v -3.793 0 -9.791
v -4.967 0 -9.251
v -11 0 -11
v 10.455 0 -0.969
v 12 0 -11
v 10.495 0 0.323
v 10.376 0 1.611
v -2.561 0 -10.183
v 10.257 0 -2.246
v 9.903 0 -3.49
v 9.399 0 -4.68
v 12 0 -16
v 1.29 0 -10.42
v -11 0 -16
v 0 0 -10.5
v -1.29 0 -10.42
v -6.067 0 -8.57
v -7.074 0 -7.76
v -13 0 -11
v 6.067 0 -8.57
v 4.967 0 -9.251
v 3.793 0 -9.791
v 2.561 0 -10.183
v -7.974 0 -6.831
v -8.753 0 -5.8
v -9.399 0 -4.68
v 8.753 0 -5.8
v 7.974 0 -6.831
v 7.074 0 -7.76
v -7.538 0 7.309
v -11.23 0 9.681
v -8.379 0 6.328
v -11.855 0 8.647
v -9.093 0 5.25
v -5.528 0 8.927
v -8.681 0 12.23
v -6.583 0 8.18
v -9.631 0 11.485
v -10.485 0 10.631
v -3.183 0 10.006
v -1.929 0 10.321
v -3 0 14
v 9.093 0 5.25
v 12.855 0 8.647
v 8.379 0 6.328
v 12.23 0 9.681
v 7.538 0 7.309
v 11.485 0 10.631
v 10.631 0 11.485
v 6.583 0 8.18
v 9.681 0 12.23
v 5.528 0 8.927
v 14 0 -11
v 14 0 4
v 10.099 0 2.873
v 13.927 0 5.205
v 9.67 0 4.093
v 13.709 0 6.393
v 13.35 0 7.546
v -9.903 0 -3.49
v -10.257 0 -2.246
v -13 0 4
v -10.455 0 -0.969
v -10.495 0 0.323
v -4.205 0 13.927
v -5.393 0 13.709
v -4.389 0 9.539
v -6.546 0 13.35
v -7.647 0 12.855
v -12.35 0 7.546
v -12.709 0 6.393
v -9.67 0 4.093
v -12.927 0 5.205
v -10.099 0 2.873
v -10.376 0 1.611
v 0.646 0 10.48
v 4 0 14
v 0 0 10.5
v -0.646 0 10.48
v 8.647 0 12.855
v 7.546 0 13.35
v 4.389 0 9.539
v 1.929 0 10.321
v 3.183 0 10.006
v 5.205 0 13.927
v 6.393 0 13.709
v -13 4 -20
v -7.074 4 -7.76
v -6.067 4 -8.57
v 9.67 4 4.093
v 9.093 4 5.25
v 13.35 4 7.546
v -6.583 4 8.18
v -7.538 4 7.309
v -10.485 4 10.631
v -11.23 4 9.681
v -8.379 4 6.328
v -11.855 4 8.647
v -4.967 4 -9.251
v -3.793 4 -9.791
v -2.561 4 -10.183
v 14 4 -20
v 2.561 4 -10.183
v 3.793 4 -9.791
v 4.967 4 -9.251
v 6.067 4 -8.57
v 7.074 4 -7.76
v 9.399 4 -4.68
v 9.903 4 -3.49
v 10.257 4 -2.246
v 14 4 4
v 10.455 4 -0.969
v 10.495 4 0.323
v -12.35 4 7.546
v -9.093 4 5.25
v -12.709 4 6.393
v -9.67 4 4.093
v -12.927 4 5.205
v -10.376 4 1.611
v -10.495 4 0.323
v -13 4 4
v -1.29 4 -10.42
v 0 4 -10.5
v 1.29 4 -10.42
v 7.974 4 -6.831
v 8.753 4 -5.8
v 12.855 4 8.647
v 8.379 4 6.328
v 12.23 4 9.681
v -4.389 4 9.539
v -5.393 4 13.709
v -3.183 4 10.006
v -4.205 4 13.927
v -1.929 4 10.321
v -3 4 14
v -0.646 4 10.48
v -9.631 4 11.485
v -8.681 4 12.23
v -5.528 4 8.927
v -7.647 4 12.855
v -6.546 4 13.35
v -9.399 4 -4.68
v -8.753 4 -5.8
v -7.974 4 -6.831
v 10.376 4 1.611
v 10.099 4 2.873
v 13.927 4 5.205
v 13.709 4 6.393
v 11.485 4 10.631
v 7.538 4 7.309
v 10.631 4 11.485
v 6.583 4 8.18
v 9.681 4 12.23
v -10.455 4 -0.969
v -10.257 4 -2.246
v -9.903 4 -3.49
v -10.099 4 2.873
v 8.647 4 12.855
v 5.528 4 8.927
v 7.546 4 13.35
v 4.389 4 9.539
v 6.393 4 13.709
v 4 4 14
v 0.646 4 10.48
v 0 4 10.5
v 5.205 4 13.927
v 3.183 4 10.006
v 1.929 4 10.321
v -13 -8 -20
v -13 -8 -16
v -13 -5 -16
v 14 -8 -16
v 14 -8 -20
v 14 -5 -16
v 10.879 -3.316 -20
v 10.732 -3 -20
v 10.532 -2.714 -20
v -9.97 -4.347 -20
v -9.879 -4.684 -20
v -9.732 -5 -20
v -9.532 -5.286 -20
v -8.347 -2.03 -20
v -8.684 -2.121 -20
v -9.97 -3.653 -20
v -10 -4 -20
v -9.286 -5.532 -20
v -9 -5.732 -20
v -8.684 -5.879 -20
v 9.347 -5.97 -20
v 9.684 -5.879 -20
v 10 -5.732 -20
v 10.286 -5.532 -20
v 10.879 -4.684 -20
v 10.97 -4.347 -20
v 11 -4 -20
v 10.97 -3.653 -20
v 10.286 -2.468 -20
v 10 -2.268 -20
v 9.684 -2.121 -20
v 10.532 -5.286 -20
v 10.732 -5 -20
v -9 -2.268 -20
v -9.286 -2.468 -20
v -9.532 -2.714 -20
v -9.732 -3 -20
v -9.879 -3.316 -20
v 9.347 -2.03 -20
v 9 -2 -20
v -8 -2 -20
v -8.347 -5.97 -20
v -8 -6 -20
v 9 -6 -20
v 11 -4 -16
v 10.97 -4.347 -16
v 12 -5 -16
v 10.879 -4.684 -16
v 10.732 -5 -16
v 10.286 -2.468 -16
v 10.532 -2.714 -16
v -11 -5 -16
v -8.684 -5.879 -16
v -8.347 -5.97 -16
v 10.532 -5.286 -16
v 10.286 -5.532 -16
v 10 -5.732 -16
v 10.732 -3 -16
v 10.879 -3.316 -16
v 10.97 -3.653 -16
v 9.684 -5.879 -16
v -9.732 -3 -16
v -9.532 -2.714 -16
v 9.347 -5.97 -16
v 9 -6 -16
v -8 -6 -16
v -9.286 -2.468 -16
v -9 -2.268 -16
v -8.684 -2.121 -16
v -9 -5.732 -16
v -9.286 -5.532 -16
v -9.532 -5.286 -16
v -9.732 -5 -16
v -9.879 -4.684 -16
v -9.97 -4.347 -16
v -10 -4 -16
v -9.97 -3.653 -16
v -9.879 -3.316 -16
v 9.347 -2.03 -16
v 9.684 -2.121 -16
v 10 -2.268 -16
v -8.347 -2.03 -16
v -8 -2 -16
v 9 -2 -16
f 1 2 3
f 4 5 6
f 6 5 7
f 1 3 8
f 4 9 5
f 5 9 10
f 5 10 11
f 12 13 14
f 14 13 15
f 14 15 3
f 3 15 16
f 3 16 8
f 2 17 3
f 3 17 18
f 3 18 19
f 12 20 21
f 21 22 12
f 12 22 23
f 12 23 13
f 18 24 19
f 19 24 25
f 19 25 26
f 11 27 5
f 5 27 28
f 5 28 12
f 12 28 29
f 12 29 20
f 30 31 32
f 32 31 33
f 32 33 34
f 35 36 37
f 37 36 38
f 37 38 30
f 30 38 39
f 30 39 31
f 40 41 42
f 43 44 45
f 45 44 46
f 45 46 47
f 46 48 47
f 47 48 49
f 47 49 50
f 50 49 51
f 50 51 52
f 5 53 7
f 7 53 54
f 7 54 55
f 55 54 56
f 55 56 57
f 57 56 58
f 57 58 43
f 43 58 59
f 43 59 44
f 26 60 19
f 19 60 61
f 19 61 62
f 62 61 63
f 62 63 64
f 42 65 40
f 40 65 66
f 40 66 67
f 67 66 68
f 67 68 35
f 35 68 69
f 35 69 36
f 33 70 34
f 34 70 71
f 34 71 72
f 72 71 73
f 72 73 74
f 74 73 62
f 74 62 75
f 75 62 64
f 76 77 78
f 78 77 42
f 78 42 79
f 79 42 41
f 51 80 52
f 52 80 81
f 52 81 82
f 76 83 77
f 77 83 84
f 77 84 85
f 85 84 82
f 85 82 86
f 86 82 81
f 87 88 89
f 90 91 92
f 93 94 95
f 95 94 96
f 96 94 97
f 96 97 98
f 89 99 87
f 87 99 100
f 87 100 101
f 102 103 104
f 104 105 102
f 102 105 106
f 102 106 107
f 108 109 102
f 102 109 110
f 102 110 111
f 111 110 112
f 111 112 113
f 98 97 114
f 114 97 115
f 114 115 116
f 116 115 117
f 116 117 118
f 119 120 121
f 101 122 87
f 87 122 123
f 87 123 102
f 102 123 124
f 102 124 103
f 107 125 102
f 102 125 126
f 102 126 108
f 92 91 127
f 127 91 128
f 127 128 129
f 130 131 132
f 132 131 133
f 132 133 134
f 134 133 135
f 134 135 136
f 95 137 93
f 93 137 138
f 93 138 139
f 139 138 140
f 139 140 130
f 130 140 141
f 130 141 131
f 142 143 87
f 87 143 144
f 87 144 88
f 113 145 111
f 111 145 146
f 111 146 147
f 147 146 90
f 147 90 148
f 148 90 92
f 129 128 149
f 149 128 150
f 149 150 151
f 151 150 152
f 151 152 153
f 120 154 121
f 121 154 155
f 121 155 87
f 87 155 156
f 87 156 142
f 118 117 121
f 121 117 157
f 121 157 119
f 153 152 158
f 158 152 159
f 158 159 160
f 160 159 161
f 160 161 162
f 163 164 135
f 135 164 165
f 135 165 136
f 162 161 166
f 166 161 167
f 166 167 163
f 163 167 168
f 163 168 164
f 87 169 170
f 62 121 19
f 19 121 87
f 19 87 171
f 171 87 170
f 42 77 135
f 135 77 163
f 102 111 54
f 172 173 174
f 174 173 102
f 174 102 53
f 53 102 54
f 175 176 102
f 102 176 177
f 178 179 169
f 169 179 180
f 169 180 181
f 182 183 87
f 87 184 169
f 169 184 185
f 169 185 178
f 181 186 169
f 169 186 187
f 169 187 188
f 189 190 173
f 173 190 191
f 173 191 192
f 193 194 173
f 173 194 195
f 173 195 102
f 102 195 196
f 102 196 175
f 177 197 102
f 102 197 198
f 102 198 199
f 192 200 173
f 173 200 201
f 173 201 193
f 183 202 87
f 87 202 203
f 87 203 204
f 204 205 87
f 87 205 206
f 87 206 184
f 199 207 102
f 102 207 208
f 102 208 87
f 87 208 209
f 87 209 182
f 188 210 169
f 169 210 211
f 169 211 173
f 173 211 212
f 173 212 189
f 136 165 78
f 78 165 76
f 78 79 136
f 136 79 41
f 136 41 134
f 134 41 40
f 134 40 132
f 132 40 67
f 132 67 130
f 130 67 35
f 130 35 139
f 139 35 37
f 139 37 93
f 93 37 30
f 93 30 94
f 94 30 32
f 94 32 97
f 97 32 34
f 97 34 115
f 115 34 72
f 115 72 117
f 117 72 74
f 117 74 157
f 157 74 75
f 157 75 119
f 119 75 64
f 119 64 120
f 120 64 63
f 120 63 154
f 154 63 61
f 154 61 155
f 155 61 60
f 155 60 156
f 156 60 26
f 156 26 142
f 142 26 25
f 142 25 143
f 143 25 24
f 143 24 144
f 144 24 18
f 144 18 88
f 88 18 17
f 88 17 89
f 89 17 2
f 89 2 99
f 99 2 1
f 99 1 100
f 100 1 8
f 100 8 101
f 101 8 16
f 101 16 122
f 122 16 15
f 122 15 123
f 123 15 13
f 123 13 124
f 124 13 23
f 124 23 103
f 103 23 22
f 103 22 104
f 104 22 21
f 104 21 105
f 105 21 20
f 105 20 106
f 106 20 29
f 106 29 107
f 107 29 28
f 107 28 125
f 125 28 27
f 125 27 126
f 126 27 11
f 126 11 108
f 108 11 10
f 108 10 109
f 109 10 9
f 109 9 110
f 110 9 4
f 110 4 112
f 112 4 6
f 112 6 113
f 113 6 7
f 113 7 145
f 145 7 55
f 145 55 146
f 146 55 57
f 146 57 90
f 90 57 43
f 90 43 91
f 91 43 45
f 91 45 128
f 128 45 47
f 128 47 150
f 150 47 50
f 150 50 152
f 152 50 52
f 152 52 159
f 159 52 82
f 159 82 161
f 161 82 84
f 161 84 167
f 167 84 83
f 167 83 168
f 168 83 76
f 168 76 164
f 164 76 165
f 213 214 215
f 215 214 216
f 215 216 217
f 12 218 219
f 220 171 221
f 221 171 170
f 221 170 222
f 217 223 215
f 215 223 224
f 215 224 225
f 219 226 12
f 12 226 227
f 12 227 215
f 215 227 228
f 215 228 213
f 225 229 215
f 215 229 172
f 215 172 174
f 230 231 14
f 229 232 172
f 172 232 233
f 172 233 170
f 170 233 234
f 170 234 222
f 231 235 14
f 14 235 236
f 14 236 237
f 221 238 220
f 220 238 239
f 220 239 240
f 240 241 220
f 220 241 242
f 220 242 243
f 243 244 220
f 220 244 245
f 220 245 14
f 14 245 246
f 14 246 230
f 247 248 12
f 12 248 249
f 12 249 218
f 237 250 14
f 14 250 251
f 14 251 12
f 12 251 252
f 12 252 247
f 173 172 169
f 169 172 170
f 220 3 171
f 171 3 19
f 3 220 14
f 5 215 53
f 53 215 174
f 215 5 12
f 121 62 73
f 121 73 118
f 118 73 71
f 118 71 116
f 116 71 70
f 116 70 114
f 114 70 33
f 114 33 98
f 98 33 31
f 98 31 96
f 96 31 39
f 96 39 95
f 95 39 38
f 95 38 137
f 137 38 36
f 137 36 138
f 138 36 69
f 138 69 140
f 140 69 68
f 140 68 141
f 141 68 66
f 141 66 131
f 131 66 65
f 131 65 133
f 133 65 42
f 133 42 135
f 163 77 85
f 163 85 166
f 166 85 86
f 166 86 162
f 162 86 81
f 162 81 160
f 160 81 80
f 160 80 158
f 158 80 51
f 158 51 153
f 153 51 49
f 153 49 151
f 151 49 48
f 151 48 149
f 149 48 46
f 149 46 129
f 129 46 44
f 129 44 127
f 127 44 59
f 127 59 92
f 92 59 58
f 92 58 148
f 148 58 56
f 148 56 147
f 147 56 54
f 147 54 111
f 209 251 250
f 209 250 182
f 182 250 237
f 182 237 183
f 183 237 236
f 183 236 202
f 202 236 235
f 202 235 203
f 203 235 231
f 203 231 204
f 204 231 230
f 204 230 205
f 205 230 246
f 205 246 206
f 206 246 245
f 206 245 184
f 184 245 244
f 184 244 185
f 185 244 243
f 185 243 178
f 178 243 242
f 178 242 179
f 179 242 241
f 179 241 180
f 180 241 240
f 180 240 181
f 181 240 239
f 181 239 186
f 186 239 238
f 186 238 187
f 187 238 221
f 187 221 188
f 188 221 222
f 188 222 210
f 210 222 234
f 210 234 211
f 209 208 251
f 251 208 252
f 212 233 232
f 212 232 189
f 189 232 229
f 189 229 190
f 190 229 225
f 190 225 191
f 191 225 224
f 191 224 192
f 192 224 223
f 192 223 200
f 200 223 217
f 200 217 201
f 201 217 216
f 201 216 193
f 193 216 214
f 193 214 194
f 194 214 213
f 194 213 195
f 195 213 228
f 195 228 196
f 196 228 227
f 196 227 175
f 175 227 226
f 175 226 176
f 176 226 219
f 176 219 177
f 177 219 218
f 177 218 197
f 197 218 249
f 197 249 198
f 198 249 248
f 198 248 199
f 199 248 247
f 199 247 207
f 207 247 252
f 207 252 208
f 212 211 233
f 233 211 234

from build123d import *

# Parameters (mm, degrees)
ESQUISSE1_W             = 27
ESQUISSE1_H             = 34
ESQUISSE1_R             = 10.5
BOSS_EXTRU_1_DEPTH      = 4
ESQUISSE2_W             = 27
ESQUISSE2_H             = 4
BOSS_EXTRU_2_DEPTH      = 8
BOSS_EXTRU_3_DEPTH      = 2
BOSS_EXTRU_4_DEPTH      = 2
CONG_1_R                = 10
ENL_V_MAT_EXTRU_1_DEPTH = 35.058772732


with BuildPart() as part:
    # Esquisse1 → Boss.-Extru.1 (new body)
    with BuildSketch(Plane(origin=(0, 0, 0), x_dir=(1, 0, 0), z_dir=(0, 1, 0))):
        with Locations((0.5, 3)):
            Rectangle(ESQUISSE1_W, ESQUISSE1_H)
        with Locations(Location((0, 0, 0), (0, 0, 270))):
            Circle(ESQUISSE1_R, mode=Mode.SUBTRACT)
    extrude(amount=BOSS_EXTRU_1_DEPTH)

    # Esquisse2 → Boss.-Extru.2 (add)
    with BuildSketch(Plane.XZ):
        with Locations((0.5, -18)):
            Rectangle(ESQUISSE2_W, ESQUISSE2_H)
    extrude(amount=BOSS_EXTRU_2_DEPTH)

    # Esquisse5 → Boss.-Extru.3 (add)
    with BuildSketch(Plane.ZY.offset(13)):
        Polygon((-16, 0), (-16, -5), (-11, 0), align=None)
    extrude(amount=-BOSS_EXTRU_3_DEPTH)

    # Esquisse6 → Boss.-Extru.4 (add)
    with BuildSketch(Plane(origin=(14, 0, 0), x_dir=(0, 0, -1), z_dir=(1, 0, 0))):
        Polygon((16, 0), (11, 0), (16, -5), align=None)
    extrude(amount=-BOSS_EXTRU_4_DEPTH)

    # Congé1
    cong_1_edges = [part.edges().sort_by_distance(p)[0] for p in [
        (-13, 2, 14),
        (14, 2, 14),
    ]]
    fillet(cong_1_edges, radius=CONG_1_R)

    # Esquisse7 → Enlèv. mat.-Extru.1 (cut, through all)
    with BuildSketch(Plane.XY.offset(-16)):
        with BuildLine():
            Line((-8, -2), (9, -2))
            ThreePointArc((9, -2), (11, -4), (9, -6))
            Line((9, -6), (-8, -6))
            ThreePointArc((-8, -6), (-10, -4), (-8, -2))
        make_face()
    extrude(amount=-ENL_V_MAT_EXTRU_1_DEPTH, mode=Mode.SUBTRACT)


solid = part.part
